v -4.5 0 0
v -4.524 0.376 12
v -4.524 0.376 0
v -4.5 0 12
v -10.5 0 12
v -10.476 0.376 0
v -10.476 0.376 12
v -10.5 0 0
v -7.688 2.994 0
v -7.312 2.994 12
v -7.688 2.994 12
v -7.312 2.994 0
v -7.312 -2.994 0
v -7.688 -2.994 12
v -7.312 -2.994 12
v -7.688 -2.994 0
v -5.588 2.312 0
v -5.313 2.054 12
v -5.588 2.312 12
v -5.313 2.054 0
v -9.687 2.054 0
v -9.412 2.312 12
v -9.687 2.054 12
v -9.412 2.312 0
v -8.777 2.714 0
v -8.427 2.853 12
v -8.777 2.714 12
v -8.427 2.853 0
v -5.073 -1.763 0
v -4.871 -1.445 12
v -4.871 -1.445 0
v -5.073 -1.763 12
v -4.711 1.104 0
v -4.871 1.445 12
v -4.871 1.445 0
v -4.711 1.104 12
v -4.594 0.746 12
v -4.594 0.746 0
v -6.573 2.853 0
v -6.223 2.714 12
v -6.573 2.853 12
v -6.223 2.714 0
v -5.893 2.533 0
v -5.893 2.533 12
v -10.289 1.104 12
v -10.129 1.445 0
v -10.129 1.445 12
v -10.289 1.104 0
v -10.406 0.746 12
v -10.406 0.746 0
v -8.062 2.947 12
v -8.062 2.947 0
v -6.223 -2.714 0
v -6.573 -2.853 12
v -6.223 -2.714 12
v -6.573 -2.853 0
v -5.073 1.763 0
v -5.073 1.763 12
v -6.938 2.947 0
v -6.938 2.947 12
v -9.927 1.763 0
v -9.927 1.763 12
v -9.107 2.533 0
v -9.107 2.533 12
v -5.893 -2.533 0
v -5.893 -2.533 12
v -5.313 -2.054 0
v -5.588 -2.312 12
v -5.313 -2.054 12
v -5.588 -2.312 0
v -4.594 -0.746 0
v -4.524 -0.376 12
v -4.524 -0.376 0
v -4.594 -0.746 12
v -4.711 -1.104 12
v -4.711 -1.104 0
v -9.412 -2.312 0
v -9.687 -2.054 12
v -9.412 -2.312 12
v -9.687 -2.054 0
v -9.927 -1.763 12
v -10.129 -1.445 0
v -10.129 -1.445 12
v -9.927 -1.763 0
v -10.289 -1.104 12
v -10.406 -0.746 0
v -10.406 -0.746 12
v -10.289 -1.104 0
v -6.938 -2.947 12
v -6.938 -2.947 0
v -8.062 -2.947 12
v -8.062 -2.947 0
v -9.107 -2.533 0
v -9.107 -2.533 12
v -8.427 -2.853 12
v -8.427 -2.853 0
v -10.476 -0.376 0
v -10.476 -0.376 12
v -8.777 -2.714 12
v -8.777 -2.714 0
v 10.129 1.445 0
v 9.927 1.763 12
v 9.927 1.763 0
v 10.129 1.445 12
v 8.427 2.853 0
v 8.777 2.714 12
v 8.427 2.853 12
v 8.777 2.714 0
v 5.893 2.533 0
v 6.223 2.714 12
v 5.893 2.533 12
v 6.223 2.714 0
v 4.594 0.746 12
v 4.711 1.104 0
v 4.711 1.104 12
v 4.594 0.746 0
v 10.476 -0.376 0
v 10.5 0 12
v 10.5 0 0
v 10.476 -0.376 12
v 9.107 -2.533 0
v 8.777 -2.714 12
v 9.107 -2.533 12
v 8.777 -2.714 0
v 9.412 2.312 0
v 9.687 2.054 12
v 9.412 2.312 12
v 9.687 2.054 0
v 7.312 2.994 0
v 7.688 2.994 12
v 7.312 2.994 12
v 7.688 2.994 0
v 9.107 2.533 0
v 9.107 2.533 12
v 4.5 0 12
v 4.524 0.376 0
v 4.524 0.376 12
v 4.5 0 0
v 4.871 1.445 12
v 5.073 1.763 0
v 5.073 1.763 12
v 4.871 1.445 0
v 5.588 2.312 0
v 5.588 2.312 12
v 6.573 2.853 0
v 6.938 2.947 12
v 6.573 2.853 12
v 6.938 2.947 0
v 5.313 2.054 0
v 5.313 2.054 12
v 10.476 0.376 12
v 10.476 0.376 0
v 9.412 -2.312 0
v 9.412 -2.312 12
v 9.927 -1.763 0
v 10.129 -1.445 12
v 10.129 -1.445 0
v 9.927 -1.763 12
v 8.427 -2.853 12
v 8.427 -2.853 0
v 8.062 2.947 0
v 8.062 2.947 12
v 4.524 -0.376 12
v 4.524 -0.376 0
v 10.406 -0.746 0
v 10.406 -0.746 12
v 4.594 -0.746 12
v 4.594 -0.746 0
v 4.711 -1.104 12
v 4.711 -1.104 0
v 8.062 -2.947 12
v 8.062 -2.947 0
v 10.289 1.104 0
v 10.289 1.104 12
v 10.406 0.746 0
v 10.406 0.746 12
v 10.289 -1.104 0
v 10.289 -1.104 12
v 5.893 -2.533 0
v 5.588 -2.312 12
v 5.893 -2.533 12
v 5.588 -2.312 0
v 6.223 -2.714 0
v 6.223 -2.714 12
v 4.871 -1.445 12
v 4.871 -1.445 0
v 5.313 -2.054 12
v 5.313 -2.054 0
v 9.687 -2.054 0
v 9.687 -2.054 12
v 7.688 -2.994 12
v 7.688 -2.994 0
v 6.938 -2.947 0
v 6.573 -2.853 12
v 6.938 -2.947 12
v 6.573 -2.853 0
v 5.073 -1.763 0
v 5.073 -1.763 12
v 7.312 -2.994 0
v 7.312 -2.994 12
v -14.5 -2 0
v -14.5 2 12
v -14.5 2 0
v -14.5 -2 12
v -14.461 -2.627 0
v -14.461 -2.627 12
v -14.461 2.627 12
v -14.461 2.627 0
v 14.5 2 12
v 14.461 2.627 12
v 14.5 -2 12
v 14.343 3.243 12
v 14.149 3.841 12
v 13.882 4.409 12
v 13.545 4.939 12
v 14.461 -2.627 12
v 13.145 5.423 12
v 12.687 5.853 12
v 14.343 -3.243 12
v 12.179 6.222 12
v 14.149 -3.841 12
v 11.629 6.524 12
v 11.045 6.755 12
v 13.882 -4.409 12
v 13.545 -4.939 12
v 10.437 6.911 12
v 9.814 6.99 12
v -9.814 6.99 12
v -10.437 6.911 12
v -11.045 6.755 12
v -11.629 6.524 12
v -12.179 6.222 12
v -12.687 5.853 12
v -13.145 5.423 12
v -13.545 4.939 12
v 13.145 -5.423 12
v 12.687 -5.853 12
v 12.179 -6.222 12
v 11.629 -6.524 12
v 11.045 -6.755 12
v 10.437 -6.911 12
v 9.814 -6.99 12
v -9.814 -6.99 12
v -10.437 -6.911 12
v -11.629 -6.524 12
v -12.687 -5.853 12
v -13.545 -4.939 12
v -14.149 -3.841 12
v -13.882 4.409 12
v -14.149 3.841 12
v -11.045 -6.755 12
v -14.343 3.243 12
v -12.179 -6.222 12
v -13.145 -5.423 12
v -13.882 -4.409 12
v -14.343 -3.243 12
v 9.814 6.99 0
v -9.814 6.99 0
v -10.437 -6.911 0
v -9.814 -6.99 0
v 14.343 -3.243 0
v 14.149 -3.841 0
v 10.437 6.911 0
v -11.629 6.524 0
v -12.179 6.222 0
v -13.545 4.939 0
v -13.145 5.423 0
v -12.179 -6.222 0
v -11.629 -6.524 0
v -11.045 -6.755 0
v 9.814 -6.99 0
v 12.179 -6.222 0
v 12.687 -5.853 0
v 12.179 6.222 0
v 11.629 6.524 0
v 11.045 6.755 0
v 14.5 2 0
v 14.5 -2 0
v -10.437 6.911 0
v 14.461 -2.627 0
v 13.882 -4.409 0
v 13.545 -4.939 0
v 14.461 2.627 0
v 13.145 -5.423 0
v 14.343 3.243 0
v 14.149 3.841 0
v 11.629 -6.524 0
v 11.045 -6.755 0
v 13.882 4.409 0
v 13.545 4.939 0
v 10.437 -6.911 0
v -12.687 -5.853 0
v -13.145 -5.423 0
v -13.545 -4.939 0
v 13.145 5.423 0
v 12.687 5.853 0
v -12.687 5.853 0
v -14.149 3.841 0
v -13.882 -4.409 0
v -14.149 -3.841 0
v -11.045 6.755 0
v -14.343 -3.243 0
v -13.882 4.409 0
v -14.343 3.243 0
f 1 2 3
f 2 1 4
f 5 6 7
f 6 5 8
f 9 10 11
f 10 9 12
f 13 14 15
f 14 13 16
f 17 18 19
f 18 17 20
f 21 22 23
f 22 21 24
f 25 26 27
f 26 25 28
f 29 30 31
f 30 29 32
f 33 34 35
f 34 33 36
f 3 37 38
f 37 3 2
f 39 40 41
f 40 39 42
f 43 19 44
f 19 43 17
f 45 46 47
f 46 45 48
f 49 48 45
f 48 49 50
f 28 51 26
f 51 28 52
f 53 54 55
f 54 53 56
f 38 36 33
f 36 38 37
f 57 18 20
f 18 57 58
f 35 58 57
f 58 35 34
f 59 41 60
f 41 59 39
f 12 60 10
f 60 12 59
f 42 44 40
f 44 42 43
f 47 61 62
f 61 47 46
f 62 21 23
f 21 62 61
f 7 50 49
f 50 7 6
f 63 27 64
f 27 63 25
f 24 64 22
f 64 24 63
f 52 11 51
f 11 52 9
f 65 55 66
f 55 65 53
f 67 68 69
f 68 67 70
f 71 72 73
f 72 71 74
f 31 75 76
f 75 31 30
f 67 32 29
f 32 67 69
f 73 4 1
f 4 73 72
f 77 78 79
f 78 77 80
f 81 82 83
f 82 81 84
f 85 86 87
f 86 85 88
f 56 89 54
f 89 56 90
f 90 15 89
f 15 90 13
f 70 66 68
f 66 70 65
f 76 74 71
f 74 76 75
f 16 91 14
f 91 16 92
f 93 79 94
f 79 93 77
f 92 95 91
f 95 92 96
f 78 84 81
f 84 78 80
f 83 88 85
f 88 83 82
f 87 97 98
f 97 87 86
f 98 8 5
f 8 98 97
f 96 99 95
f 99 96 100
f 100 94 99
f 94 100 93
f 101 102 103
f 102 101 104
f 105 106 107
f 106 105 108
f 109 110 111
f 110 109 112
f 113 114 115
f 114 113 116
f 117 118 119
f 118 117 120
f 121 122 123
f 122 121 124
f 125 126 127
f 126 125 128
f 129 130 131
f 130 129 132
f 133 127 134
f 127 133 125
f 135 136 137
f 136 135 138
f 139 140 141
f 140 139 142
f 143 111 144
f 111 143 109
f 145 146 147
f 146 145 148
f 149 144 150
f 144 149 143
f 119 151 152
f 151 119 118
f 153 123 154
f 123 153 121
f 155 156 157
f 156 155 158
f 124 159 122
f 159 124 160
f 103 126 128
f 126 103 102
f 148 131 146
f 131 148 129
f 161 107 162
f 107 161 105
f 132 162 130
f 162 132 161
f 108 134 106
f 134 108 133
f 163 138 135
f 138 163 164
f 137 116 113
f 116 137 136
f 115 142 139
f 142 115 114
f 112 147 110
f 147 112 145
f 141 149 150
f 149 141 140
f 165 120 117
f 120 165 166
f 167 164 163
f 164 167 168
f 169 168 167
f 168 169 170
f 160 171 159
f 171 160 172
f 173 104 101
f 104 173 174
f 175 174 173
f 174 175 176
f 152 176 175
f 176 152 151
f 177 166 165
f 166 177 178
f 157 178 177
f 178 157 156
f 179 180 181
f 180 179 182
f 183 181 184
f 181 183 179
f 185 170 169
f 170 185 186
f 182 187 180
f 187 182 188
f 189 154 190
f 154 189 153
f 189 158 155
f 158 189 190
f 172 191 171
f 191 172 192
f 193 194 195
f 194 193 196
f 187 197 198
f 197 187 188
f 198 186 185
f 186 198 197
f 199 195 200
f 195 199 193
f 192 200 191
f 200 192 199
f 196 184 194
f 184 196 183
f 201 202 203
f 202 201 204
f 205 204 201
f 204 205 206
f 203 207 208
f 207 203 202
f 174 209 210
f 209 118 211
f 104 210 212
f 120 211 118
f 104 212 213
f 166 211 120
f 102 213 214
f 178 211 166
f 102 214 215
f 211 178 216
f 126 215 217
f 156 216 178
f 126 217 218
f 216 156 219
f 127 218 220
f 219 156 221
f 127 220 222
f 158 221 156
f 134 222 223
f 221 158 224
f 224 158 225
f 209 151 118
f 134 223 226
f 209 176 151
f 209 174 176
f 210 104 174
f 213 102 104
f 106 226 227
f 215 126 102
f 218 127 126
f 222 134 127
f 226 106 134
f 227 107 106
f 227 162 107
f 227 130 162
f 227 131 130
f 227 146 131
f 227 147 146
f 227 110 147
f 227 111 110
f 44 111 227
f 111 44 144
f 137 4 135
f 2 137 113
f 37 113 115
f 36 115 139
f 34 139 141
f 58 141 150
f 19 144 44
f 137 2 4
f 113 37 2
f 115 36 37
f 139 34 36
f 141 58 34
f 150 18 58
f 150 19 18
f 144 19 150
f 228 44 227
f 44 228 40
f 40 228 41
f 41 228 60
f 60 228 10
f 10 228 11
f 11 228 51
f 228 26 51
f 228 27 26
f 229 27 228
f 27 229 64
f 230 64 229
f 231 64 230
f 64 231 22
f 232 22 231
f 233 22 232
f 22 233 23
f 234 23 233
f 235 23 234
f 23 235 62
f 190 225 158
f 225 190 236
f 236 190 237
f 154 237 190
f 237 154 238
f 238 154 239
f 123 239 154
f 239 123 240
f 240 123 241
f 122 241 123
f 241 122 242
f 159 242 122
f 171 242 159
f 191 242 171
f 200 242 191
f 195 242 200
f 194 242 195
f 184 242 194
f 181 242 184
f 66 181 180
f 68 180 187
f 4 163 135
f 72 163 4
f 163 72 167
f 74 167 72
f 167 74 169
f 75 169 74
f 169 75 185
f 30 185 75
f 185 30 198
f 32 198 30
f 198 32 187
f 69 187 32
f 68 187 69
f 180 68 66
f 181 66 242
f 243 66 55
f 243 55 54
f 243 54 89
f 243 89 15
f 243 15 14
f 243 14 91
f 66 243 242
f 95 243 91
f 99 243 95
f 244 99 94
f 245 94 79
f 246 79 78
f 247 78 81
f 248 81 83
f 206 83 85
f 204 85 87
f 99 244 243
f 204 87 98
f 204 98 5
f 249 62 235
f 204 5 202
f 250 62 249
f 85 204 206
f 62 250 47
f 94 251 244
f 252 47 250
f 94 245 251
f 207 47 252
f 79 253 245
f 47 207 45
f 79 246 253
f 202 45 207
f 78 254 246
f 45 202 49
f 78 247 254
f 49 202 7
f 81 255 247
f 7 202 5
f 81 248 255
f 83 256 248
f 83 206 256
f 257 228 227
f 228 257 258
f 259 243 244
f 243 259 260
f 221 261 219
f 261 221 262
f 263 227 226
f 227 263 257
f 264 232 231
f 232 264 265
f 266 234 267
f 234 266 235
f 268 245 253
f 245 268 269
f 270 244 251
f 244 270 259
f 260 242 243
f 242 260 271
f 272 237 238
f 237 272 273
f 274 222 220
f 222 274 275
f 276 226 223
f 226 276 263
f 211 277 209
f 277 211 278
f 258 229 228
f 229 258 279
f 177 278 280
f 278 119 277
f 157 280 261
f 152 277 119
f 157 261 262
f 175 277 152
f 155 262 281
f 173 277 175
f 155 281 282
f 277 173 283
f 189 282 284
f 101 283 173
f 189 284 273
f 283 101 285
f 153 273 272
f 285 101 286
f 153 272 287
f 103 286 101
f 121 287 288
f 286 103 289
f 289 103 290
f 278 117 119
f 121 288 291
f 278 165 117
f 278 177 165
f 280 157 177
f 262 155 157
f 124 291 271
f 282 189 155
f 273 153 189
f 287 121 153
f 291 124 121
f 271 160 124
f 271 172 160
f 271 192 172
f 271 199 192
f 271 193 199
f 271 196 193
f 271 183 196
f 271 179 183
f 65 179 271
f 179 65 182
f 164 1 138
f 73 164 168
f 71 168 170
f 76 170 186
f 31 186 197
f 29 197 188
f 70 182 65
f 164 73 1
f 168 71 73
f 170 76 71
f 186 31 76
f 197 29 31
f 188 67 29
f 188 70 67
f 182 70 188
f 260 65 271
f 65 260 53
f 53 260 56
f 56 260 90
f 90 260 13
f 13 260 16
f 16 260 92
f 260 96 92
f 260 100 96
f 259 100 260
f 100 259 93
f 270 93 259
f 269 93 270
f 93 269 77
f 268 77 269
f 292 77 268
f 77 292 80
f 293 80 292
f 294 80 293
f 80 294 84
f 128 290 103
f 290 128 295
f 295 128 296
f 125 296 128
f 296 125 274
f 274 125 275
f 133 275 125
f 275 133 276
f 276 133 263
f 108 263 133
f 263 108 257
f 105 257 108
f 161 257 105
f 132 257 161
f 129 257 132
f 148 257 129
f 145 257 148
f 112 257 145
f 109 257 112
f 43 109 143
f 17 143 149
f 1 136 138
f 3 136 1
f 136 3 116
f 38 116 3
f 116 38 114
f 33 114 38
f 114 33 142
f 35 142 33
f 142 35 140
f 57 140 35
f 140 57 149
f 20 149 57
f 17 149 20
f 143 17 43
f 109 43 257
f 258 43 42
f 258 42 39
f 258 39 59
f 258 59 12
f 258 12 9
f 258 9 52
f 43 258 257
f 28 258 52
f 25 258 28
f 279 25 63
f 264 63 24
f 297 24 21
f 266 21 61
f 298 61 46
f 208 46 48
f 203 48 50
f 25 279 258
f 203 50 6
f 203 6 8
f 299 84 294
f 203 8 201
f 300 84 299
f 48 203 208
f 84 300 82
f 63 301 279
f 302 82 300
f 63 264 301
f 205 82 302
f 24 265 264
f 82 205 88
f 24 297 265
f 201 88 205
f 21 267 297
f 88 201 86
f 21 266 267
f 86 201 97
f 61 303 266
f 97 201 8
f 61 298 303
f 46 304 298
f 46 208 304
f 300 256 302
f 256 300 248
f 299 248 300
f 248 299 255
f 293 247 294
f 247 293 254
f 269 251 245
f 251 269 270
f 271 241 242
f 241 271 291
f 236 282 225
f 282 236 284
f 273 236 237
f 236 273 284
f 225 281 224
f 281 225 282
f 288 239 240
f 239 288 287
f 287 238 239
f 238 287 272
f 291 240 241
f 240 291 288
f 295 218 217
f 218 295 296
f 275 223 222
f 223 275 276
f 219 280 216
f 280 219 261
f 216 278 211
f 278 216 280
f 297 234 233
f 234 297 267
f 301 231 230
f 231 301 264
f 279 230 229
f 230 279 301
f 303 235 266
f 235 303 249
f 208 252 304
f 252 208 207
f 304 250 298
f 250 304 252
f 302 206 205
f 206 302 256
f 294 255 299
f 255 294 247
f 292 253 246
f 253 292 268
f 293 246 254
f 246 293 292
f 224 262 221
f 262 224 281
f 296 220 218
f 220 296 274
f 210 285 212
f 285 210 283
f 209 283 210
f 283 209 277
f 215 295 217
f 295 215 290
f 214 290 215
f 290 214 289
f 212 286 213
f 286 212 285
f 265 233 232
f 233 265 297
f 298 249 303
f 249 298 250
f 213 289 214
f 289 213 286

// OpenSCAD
$fn = 50;


difference() {
	union() {
		hull() {
			translate(v = [-9.5000000000, 2.0000000000, 0]) {
				cylinder(h = 12, r = 5);
			}
			translate(v = [9.5000000000, 2.0000000000, 0]) {
				cylinder(h = 12, r = 5);
			}
			translate(v = [-9.5000000000, -2.0000000000, 0]) {
				cylinder(h = 12, r = 5);
			}
			translate(v = [9.5000000000, -2.0000000000, 0]) {
				cylinder(h = 12, r = 5);
			}
		}
	}
	union() {
		translate(v = [-7.5000000000, 0.0000000000, -100.0000000000]) {
			cylinder(h = 200, r = 3.0000000000);
		}
		translate(v = [-7.5000000000, 0.0000000000, -100.0000000000]) {
			cylinder(h = 200, r = 3.0000000000);
		}
		translate(v = [7.5000000000, 0.0000000000, -100.0000000000]) {
			cylinder(h = 200, r = 3.0000000000);
		}
		translate(v = [7.5000000000, 0.0000000000, -100.0000000000]) {
			cylinder(h = 200, r = 3.0000000000);
		}
	}
}
